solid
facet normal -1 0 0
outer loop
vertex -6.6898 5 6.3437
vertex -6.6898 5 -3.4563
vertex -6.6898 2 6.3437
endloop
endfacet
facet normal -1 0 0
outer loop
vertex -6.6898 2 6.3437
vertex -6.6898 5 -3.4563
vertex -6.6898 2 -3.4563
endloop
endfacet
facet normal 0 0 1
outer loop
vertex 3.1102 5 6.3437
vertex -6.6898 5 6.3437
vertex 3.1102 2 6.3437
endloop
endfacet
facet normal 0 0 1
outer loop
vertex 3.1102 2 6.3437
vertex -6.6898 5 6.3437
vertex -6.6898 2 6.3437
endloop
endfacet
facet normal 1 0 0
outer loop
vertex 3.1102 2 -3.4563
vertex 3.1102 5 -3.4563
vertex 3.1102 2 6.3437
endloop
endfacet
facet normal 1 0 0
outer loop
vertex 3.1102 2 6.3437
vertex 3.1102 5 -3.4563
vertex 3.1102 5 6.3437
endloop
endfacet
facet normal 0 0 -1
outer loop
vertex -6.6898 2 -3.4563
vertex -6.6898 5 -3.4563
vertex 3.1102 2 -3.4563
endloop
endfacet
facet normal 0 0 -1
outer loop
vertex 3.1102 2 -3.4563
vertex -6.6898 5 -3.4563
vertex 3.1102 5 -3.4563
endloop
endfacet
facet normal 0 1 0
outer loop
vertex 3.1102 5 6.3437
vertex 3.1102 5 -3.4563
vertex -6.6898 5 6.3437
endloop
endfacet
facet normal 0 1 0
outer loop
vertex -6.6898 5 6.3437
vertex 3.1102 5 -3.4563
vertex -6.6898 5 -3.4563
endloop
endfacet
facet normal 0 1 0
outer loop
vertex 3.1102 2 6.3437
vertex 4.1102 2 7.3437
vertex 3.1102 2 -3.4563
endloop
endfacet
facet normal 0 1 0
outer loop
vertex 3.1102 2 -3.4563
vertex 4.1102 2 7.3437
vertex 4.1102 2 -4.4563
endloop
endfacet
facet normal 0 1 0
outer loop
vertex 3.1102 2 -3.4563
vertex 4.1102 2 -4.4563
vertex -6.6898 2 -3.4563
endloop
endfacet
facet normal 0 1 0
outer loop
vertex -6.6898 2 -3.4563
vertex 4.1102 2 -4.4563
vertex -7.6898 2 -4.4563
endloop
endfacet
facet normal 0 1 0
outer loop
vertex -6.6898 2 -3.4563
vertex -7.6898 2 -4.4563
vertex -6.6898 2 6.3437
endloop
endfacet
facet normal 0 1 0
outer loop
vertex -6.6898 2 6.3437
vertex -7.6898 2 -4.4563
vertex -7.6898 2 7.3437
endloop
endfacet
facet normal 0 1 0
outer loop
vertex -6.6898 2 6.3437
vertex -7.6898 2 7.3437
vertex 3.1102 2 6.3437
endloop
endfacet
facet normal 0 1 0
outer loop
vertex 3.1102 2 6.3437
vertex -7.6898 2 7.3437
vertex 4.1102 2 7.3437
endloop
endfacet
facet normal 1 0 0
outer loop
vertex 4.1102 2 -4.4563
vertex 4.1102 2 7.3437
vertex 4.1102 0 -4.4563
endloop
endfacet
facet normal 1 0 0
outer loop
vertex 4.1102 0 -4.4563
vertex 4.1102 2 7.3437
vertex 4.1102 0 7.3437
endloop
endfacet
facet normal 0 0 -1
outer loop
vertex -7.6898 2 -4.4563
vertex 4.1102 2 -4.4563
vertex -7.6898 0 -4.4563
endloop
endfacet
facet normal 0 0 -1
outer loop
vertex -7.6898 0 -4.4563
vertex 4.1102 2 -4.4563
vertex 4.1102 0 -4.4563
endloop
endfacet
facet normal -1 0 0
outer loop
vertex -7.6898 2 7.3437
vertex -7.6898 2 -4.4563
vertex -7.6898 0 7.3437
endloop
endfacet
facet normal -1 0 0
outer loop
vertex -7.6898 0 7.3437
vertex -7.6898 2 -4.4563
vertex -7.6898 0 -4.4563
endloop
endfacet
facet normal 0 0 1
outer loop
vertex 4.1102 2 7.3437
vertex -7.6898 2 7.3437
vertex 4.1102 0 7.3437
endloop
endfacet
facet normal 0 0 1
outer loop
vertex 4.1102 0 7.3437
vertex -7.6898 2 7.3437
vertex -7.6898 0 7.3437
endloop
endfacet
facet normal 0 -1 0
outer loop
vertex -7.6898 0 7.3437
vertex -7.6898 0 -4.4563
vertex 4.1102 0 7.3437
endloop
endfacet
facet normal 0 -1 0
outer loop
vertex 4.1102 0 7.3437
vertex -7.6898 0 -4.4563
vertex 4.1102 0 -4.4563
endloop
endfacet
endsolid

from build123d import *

# Parameters (mm, degrees)
SKETCH1_W           = 9.8
SKETCH1_H           = 9.8
BOSS_EXTRUDE4_DEPTH = 5
SKETCH1_4_W         = 11.8
SKETCH1_4_H         = 11.8
SKETCH1_4_W_2       = 9.8
SKETCH1_4_H_2       = 9.8
BOSS_EXTRUDE5_DEPTH = 2


with BuildPart() as part:
    # Sketch1 → Boss-Extrude4 (new body)
    with BuildSketch(Plane(origin=(0, 0, 0), x_dir=(1, 0, 0), z_dir=(0, 1, 0))):
        with Locations((-1.789763059, -1.443740832)):
            Rectangle(SKETCH1_W, SKETCH1_H)
    extrude(amount=BOSS_EXTRUDE4_DEPTH)

    # Sketch1<4> → Boss-Extrude5 (add)
    with BuildSketch(Plane(origin=(0, 0, 0), x_dir=(1, 0, 0), z_dir=(0, 1, 0))):
        with Locations((-1.789763059, -1.443740832)):
            Rectangle(SKETCH1_4_W, SKETCH1_4_H)
        with Locations((-1.789763059, -1.443740832)):
            Rectangle(SKETCH1_4_W_2, SKETCH1_4_H_2, mode=Mode.SUBTRACT)
    extrude(amount=BOSS_EXTRUDE5_DEPTH)


solid = part.part
